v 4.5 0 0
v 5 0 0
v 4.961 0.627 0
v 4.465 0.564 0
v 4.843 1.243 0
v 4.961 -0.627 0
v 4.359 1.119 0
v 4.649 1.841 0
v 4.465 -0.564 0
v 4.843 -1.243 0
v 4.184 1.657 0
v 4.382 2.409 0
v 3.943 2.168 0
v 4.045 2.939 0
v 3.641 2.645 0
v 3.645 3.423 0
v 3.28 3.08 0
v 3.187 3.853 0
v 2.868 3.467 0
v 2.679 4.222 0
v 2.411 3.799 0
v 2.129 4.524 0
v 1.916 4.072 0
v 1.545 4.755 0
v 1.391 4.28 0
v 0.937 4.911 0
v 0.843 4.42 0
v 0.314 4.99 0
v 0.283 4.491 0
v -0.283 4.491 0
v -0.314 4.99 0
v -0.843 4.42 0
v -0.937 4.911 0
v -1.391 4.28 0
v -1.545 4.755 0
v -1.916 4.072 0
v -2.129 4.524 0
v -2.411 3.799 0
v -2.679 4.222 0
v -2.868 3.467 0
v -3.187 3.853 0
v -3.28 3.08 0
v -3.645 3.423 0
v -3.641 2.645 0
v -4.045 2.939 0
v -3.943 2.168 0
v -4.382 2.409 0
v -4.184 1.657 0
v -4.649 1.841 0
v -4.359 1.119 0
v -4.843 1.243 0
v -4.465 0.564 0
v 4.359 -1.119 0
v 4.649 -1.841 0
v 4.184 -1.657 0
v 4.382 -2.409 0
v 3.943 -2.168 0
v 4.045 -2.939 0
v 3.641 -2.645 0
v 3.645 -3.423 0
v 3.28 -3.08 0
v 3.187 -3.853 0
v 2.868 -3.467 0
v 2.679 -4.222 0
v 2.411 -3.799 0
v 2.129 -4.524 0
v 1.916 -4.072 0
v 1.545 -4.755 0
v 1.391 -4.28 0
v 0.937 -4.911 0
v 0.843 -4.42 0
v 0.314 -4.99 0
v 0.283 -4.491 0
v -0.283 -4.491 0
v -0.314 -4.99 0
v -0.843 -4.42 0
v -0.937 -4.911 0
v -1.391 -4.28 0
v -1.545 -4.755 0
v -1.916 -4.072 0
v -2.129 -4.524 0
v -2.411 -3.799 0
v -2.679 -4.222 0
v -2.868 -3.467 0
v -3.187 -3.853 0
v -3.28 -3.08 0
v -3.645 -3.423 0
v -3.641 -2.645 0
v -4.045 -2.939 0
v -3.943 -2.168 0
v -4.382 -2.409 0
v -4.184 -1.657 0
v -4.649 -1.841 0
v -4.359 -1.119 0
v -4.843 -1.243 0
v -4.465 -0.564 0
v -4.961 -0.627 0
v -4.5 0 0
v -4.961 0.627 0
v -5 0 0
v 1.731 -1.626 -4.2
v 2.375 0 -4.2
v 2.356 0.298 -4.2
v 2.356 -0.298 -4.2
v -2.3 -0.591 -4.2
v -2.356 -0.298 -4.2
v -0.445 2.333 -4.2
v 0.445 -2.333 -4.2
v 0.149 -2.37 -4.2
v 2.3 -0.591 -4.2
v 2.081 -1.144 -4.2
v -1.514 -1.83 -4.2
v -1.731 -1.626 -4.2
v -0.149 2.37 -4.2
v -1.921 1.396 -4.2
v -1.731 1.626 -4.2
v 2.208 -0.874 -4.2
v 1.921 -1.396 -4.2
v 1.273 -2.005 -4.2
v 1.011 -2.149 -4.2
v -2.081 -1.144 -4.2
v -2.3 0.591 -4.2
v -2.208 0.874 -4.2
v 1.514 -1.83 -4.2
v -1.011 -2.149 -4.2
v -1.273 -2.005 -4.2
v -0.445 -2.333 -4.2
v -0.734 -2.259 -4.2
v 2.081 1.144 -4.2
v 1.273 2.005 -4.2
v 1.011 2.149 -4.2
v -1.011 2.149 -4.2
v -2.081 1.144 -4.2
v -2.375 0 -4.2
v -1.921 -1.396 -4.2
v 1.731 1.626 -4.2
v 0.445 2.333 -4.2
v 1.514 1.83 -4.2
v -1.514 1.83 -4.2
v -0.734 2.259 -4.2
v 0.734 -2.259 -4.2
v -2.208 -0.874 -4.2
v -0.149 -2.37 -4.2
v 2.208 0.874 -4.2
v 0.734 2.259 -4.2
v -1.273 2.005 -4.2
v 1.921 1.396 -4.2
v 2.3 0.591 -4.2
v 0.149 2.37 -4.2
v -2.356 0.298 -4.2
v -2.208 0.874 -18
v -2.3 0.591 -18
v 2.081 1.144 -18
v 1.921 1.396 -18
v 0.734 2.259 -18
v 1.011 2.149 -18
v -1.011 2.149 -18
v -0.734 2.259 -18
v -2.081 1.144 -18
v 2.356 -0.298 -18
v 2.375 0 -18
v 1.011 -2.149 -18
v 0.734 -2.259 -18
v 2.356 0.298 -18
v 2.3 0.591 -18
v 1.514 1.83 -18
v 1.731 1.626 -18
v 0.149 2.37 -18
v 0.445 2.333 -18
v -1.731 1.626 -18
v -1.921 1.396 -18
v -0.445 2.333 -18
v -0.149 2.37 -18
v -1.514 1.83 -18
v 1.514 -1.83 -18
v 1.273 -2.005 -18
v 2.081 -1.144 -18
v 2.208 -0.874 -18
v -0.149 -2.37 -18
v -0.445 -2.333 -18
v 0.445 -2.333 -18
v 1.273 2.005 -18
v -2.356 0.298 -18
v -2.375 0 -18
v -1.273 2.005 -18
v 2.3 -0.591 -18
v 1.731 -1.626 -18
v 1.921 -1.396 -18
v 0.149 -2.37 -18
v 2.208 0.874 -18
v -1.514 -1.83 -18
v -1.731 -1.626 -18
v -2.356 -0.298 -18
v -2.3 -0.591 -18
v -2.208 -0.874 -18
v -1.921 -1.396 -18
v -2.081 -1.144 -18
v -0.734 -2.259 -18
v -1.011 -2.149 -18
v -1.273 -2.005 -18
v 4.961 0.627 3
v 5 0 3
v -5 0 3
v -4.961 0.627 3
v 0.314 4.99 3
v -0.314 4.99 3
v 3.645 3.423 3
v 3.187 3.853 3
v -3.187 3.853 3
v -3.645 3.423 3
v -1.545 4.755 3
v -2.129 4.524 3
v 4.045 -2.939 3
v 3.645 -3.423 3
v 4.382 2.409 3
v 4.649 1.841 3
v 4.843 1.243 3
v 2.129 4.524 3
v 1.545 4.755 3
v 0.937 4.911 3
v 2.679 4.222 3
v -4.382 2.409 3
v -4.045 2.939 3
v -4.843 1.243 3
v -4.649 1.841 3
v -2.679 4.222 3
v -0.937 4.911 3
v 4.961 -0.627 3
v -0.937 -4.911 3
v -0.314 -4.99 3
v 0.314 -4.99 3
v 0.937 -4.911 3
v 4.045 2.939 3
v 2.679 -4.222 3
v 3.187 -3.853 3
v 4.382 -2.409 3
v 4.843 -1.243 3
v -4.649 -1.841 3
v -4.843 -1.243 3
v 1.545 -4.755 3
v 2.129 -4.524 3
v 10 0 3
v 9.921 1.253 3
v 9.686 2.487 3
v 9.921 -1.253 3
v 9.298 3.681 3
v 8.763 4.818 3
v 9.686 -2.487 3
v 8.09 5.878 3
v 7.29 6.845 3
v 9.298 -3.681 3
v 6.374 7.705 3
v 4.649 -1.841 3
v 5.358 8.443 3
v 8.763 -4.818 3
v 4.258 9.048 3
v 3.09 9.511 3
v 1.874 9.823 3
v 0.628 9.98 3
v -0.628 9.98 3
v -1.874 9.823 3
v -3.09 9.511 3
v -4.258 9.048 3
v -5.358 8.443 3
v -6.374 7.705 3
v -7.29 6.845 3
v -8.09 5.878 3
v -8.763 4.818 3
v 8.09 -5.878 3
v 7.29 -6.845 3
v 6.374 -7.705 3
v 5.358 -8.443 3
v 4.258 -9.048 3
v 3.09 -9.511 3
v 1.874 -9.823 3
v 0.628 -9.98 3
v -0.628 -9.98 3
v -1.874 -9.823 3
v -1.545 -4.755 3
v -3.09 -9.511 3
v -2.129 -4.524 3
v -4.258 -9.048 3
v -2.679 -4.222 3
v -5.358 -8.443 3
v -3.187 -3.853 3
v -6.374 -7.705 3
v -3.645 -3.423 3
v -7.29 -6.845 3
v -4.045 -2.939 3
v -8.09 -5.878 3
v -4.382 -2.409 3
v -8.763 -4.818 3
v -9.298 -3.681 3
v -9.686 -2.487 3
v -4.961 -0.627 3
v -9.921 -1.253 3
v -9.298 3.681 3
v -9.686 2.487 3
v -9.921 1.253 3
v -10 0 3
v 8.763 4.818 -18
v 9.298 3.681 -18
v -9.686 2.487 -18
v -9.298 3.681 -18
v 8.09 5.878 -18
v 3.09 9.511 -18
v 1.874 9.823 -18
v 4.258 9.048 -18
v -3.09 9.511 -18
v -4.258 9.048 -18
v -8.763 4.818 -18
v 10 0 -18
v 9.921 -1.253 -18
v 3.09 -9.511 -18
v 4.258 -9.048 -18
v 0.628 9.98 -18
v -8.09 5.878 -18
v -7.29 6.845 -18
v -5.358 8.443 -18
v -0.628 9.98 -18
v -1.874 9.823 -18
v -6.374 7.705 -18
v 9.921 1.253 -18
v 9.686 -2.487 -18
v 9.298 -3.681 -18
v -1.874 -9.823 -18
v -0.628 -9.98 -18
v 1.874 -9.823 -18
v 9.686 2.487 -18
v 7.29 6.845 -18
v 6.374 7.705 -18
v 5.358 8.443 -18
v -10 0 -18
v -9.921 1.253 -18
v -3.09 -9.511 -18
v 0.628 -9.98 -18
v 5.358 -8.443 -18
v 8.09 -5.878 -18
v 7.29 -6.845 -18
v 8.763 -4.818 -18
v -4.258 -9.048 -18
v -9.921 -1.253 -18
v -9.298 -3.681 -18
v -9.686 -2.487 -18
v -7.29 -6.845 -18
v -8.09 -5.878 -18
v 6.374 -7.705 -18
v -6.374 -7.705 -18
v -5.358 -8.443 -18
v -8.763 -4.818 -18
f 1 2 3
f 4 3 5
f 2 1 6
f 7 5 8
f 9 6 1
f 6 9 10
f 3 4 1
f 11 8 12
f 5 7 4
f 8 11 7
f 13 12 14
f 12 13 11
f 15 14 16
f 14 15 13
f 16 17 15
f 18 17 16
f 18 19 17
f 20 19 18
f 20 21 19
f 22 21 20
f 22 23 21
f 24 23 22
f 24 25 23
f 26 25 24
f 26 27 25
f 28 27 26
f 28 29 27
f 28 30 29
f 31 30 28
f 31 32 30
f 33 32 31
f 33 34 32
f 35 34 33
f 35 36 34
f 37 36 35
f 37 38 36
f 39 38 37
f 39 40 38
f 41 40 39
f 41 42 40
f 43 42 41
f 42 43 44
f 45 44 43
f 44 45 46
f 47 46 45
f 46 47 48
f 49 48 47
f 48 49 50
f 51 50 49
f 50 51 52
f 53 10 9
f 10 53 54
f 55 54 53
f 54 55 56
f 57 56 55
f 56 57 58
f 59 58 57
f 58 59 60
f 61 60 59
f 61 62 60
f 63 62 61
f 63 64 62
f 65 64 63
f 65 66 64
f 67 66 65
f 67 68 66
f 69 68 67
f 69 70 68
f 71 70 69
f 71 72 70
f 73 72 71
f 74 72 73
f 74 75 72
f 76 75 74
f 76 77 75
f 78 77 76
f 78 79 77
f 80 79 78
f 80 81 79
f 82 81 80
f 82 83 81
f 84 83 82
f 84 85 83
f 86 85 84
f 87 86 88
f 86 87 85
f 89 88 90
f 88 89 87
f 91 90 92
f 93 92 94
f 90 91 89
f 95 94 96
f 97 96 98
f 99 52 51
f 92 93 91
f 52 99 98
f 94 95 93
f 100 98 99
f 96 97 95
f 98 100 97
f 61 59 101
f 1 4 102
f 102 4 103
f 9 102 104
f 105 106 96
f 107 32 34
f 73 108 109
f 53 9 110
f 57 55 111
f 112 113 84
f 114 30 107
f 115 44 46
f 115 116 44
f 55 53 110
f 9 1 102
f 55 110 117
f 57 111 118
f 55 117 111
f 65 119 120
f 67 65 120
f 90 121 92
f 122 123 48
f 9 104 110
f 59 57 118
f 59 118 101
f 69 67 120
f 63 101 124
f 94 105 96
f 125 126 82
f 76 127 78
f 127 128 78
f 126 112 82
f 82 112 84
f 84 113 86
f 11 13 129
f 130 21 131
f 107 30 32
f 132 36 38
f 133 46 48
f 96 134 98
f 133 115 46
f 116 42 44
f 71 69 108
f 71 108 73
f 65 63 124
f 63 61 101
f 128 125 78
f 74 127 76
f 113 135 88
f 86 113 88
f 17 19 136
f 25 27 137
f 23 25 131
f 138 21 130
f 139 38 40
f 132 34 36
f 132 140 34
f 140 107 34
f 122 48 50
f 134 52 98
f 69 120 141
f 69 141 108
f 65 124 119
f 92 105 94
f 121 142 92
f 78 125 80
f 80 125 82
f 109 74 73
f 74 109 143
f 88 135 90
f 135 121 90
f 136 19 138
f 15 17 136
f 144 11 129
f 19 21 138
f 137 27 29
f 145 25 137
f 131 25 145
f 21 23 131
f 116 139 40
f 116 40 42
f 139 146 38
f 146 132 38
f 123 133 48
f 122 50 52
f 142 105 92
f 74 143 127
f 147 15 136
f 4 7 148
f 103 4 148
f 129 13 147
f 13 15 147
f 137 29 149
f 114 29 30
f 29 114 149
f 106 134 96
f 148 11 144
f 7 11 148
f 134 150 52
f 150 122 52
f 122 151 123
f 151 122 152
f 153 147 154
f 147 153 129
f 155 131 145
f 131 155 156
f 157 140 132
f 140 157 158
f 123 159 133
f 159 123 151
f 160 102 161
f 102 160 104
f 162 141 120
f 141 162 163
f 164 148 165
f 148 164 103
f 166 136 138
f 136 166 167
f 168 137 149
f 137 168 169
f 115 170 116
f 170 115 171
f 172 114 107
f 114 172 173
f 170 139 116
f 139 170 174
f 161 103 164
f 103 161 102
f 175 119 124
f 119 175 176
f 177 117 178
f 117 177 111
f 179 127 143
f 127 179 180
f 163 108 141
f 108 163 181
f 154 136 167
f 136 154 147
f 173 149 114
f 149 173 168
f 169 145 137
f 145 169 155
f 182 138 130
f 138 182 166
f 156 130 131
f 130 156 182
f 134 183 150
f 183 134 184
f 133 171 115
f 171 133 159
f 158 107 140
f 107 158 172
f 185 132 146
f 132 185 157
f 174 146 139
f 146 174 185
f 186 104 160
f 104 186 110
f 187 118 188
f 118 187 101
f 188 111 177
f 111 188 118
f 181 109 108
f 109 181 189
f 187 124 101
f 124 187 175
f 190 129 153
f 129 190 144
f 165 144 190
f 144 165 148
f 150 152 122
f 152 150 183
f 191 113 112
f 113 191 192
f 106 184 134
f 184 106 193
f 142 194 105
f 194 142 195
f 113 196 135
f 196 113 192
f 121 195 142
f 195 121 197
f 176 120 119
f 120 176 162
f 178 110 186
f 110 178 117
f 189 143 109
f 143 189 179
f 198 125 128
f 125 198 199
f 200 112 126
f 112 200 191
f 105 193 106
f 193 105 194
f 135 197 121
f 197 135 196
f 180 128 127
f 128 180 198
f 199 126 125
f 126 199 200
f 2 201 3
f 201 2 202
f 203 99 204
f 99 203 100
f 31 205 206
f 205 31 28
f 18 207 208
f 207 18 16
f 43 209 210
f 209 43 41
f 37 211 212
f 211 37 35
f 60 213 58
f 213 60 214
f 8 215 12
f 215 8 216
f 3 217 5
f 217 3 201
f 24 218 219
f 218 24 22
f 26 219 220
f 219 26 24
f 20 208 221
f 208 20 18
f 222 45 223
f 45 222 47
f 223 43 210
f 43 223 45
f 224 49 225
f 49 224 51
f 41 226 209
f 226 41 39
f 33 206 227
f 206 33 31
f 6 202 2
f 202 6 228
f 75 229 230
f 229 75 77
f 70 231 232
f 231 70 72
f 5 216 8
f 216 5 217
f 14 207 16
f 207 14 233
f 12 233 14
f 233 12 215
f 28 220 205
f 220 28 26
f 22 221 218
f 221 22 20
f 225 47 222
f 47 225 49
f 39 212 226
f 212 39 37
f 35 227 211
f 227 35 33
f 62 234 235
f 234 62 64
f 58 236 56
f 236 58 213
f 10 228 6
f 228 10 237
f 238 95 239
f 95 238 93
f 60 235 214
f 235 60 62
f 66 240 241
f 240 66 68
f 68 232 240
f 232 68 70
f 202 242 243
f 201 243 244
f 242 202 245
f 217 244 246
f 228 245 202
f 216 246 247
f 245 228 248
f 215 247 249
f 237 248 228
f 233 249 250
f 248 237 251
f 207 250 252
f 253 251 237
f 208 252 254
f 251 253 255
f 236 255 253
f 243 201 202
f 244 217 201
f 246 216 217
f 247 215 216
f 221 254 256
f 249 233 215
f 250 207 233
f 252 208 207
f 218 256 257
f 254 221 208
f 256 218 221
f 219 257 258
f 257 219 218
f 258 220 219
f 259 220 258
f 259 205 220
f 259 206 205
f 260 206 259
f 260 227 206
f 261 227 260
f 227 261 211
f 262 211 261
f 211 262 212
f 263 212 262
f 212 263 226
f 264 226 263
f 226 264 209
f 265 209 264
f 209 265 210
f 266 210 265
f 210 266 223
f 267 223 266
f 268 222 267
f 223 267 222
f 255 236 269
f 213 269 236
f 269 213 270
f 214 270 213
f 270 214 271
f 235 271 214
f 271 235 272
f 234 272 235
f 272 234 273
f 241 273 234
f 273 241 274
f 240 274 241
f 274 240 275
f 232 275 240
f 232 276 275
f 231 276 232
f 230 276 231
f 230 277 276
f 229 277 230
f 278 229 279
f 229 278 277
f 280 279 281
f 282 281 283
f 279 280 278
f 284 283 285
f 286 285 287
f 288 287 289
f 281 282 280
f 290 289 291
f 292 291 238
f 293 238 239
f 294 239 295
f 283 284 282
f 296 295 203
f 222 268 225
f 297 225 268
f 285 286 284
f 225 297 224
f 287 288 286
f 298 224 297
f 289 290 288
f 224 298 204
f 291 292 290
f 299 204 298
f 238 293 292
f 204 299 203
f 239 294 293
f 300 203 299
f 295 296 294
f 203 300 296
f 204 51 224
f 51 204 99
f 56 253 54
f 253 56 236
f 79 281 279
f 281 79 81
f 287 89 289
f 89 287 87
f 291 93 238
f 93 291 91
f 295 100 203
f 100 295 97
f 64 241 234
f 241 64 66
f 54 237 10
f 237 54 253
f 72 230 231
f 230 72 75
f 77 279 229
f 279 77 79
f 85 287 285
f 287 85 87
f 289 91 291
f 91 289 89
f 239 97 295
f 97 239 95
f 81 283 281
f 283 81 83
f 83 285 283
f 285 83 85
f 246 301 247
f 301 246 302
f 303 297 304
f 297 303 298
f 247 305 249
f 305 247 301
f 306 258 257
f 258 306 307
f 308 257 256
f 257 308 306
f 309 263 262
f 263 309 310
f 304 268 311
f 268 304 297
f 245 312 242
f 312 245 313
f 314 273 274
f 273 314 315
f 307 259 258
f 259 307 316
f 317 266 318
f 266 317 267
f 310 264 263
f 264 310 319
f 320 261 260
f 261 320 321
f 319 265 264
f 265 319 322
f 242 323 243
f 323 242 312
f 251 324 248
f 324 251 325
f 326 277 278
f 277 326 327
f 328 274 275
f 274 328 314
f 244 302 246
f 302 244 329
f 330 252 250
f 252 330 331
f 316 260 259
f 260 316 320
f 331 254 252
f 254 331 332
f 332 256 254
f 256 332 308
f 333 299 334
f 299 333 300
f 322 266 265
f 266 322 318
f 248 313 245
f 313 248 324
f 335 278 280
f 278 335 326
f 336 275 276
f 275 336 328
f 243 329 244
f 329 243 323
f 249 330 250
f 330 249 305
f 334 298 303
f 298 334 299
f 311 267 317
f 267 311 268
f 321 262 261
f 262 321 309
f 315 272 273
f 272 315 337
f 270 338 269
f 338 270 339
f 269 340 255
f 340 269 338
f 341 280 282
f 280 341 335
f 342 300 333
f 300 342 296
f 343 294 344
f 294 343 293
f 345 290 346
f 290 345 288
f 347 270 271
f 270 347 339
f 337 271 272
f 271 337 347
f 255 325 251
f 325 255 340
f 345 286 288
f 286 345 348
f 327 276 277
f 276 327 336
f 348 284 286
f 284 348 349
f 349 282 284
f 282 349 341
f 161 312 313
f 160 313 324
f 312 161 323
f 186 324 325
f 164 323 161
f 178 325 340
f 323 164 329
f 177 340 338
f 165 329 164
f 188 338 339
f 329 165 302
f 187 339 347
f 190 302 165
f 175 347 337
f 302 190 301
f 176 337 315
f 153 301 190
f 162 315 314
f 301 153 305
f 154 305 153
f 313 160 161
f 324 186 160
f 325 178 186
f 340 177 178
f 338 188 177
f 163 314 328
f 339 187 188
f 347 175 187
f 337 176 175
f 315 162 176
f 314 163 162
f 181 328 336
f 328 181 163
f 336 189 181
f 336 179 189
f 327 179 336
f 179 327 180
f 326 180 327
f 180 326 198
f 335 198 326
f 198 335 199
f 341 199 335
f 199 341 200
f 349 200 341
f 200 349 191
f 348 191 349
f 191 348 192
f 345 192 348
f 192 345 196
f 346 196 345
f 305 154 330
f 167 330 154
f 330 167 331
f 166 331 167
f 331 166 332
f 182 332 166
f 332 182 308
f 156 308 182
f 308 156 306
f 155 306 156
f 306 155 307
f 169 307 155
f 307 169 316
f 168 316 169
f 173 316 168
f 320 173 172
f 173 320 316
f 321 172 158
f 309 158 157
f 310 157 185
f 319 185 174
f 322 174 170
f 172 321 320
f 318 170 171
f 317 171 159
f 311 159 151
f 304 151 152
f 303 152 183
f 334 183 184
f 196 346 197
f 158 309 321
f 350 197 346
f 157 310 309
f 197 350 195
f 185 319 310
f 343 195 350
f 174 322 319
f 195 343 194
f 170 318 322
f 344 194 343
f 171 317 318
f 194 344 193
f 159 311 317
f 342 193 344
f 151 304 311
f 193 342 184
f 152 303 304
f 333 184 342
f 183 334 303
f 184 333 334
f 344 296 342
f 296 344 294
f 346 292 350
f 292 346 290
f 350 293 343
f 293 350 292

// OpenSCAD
$fn = 50;

difference() {
	union() {
		translate(v = [0, 0, -18.0]) {
			cylinder(h = 21, r = 10.0);
		}
	}
	union() {
		translate(v = [0, 0, 0]) {
			rotate(a = [0, 0, 0]) {
				difference() {
					union() {
						translate(v = [0, 0, -21.0]) {
							cylinder(h = 21, r = 2.25);
						}
						translate(v = [0, 0, -4.2]) {
							cylinder(h = 4.2, r1 = 2.375, r2 = 4.5);
						}
						translate(v = [0, 0, -21.0]) {
							cylinder(h = 21, r = 2.375);
						}
						translate(v = [0, 0, -21.0]) {
							cylinder(h = 21, r = 2.25);
						}
					}
					union();
				}
			}
		}
		#cylinder(h = 3, r = 5.0);
	}
}
